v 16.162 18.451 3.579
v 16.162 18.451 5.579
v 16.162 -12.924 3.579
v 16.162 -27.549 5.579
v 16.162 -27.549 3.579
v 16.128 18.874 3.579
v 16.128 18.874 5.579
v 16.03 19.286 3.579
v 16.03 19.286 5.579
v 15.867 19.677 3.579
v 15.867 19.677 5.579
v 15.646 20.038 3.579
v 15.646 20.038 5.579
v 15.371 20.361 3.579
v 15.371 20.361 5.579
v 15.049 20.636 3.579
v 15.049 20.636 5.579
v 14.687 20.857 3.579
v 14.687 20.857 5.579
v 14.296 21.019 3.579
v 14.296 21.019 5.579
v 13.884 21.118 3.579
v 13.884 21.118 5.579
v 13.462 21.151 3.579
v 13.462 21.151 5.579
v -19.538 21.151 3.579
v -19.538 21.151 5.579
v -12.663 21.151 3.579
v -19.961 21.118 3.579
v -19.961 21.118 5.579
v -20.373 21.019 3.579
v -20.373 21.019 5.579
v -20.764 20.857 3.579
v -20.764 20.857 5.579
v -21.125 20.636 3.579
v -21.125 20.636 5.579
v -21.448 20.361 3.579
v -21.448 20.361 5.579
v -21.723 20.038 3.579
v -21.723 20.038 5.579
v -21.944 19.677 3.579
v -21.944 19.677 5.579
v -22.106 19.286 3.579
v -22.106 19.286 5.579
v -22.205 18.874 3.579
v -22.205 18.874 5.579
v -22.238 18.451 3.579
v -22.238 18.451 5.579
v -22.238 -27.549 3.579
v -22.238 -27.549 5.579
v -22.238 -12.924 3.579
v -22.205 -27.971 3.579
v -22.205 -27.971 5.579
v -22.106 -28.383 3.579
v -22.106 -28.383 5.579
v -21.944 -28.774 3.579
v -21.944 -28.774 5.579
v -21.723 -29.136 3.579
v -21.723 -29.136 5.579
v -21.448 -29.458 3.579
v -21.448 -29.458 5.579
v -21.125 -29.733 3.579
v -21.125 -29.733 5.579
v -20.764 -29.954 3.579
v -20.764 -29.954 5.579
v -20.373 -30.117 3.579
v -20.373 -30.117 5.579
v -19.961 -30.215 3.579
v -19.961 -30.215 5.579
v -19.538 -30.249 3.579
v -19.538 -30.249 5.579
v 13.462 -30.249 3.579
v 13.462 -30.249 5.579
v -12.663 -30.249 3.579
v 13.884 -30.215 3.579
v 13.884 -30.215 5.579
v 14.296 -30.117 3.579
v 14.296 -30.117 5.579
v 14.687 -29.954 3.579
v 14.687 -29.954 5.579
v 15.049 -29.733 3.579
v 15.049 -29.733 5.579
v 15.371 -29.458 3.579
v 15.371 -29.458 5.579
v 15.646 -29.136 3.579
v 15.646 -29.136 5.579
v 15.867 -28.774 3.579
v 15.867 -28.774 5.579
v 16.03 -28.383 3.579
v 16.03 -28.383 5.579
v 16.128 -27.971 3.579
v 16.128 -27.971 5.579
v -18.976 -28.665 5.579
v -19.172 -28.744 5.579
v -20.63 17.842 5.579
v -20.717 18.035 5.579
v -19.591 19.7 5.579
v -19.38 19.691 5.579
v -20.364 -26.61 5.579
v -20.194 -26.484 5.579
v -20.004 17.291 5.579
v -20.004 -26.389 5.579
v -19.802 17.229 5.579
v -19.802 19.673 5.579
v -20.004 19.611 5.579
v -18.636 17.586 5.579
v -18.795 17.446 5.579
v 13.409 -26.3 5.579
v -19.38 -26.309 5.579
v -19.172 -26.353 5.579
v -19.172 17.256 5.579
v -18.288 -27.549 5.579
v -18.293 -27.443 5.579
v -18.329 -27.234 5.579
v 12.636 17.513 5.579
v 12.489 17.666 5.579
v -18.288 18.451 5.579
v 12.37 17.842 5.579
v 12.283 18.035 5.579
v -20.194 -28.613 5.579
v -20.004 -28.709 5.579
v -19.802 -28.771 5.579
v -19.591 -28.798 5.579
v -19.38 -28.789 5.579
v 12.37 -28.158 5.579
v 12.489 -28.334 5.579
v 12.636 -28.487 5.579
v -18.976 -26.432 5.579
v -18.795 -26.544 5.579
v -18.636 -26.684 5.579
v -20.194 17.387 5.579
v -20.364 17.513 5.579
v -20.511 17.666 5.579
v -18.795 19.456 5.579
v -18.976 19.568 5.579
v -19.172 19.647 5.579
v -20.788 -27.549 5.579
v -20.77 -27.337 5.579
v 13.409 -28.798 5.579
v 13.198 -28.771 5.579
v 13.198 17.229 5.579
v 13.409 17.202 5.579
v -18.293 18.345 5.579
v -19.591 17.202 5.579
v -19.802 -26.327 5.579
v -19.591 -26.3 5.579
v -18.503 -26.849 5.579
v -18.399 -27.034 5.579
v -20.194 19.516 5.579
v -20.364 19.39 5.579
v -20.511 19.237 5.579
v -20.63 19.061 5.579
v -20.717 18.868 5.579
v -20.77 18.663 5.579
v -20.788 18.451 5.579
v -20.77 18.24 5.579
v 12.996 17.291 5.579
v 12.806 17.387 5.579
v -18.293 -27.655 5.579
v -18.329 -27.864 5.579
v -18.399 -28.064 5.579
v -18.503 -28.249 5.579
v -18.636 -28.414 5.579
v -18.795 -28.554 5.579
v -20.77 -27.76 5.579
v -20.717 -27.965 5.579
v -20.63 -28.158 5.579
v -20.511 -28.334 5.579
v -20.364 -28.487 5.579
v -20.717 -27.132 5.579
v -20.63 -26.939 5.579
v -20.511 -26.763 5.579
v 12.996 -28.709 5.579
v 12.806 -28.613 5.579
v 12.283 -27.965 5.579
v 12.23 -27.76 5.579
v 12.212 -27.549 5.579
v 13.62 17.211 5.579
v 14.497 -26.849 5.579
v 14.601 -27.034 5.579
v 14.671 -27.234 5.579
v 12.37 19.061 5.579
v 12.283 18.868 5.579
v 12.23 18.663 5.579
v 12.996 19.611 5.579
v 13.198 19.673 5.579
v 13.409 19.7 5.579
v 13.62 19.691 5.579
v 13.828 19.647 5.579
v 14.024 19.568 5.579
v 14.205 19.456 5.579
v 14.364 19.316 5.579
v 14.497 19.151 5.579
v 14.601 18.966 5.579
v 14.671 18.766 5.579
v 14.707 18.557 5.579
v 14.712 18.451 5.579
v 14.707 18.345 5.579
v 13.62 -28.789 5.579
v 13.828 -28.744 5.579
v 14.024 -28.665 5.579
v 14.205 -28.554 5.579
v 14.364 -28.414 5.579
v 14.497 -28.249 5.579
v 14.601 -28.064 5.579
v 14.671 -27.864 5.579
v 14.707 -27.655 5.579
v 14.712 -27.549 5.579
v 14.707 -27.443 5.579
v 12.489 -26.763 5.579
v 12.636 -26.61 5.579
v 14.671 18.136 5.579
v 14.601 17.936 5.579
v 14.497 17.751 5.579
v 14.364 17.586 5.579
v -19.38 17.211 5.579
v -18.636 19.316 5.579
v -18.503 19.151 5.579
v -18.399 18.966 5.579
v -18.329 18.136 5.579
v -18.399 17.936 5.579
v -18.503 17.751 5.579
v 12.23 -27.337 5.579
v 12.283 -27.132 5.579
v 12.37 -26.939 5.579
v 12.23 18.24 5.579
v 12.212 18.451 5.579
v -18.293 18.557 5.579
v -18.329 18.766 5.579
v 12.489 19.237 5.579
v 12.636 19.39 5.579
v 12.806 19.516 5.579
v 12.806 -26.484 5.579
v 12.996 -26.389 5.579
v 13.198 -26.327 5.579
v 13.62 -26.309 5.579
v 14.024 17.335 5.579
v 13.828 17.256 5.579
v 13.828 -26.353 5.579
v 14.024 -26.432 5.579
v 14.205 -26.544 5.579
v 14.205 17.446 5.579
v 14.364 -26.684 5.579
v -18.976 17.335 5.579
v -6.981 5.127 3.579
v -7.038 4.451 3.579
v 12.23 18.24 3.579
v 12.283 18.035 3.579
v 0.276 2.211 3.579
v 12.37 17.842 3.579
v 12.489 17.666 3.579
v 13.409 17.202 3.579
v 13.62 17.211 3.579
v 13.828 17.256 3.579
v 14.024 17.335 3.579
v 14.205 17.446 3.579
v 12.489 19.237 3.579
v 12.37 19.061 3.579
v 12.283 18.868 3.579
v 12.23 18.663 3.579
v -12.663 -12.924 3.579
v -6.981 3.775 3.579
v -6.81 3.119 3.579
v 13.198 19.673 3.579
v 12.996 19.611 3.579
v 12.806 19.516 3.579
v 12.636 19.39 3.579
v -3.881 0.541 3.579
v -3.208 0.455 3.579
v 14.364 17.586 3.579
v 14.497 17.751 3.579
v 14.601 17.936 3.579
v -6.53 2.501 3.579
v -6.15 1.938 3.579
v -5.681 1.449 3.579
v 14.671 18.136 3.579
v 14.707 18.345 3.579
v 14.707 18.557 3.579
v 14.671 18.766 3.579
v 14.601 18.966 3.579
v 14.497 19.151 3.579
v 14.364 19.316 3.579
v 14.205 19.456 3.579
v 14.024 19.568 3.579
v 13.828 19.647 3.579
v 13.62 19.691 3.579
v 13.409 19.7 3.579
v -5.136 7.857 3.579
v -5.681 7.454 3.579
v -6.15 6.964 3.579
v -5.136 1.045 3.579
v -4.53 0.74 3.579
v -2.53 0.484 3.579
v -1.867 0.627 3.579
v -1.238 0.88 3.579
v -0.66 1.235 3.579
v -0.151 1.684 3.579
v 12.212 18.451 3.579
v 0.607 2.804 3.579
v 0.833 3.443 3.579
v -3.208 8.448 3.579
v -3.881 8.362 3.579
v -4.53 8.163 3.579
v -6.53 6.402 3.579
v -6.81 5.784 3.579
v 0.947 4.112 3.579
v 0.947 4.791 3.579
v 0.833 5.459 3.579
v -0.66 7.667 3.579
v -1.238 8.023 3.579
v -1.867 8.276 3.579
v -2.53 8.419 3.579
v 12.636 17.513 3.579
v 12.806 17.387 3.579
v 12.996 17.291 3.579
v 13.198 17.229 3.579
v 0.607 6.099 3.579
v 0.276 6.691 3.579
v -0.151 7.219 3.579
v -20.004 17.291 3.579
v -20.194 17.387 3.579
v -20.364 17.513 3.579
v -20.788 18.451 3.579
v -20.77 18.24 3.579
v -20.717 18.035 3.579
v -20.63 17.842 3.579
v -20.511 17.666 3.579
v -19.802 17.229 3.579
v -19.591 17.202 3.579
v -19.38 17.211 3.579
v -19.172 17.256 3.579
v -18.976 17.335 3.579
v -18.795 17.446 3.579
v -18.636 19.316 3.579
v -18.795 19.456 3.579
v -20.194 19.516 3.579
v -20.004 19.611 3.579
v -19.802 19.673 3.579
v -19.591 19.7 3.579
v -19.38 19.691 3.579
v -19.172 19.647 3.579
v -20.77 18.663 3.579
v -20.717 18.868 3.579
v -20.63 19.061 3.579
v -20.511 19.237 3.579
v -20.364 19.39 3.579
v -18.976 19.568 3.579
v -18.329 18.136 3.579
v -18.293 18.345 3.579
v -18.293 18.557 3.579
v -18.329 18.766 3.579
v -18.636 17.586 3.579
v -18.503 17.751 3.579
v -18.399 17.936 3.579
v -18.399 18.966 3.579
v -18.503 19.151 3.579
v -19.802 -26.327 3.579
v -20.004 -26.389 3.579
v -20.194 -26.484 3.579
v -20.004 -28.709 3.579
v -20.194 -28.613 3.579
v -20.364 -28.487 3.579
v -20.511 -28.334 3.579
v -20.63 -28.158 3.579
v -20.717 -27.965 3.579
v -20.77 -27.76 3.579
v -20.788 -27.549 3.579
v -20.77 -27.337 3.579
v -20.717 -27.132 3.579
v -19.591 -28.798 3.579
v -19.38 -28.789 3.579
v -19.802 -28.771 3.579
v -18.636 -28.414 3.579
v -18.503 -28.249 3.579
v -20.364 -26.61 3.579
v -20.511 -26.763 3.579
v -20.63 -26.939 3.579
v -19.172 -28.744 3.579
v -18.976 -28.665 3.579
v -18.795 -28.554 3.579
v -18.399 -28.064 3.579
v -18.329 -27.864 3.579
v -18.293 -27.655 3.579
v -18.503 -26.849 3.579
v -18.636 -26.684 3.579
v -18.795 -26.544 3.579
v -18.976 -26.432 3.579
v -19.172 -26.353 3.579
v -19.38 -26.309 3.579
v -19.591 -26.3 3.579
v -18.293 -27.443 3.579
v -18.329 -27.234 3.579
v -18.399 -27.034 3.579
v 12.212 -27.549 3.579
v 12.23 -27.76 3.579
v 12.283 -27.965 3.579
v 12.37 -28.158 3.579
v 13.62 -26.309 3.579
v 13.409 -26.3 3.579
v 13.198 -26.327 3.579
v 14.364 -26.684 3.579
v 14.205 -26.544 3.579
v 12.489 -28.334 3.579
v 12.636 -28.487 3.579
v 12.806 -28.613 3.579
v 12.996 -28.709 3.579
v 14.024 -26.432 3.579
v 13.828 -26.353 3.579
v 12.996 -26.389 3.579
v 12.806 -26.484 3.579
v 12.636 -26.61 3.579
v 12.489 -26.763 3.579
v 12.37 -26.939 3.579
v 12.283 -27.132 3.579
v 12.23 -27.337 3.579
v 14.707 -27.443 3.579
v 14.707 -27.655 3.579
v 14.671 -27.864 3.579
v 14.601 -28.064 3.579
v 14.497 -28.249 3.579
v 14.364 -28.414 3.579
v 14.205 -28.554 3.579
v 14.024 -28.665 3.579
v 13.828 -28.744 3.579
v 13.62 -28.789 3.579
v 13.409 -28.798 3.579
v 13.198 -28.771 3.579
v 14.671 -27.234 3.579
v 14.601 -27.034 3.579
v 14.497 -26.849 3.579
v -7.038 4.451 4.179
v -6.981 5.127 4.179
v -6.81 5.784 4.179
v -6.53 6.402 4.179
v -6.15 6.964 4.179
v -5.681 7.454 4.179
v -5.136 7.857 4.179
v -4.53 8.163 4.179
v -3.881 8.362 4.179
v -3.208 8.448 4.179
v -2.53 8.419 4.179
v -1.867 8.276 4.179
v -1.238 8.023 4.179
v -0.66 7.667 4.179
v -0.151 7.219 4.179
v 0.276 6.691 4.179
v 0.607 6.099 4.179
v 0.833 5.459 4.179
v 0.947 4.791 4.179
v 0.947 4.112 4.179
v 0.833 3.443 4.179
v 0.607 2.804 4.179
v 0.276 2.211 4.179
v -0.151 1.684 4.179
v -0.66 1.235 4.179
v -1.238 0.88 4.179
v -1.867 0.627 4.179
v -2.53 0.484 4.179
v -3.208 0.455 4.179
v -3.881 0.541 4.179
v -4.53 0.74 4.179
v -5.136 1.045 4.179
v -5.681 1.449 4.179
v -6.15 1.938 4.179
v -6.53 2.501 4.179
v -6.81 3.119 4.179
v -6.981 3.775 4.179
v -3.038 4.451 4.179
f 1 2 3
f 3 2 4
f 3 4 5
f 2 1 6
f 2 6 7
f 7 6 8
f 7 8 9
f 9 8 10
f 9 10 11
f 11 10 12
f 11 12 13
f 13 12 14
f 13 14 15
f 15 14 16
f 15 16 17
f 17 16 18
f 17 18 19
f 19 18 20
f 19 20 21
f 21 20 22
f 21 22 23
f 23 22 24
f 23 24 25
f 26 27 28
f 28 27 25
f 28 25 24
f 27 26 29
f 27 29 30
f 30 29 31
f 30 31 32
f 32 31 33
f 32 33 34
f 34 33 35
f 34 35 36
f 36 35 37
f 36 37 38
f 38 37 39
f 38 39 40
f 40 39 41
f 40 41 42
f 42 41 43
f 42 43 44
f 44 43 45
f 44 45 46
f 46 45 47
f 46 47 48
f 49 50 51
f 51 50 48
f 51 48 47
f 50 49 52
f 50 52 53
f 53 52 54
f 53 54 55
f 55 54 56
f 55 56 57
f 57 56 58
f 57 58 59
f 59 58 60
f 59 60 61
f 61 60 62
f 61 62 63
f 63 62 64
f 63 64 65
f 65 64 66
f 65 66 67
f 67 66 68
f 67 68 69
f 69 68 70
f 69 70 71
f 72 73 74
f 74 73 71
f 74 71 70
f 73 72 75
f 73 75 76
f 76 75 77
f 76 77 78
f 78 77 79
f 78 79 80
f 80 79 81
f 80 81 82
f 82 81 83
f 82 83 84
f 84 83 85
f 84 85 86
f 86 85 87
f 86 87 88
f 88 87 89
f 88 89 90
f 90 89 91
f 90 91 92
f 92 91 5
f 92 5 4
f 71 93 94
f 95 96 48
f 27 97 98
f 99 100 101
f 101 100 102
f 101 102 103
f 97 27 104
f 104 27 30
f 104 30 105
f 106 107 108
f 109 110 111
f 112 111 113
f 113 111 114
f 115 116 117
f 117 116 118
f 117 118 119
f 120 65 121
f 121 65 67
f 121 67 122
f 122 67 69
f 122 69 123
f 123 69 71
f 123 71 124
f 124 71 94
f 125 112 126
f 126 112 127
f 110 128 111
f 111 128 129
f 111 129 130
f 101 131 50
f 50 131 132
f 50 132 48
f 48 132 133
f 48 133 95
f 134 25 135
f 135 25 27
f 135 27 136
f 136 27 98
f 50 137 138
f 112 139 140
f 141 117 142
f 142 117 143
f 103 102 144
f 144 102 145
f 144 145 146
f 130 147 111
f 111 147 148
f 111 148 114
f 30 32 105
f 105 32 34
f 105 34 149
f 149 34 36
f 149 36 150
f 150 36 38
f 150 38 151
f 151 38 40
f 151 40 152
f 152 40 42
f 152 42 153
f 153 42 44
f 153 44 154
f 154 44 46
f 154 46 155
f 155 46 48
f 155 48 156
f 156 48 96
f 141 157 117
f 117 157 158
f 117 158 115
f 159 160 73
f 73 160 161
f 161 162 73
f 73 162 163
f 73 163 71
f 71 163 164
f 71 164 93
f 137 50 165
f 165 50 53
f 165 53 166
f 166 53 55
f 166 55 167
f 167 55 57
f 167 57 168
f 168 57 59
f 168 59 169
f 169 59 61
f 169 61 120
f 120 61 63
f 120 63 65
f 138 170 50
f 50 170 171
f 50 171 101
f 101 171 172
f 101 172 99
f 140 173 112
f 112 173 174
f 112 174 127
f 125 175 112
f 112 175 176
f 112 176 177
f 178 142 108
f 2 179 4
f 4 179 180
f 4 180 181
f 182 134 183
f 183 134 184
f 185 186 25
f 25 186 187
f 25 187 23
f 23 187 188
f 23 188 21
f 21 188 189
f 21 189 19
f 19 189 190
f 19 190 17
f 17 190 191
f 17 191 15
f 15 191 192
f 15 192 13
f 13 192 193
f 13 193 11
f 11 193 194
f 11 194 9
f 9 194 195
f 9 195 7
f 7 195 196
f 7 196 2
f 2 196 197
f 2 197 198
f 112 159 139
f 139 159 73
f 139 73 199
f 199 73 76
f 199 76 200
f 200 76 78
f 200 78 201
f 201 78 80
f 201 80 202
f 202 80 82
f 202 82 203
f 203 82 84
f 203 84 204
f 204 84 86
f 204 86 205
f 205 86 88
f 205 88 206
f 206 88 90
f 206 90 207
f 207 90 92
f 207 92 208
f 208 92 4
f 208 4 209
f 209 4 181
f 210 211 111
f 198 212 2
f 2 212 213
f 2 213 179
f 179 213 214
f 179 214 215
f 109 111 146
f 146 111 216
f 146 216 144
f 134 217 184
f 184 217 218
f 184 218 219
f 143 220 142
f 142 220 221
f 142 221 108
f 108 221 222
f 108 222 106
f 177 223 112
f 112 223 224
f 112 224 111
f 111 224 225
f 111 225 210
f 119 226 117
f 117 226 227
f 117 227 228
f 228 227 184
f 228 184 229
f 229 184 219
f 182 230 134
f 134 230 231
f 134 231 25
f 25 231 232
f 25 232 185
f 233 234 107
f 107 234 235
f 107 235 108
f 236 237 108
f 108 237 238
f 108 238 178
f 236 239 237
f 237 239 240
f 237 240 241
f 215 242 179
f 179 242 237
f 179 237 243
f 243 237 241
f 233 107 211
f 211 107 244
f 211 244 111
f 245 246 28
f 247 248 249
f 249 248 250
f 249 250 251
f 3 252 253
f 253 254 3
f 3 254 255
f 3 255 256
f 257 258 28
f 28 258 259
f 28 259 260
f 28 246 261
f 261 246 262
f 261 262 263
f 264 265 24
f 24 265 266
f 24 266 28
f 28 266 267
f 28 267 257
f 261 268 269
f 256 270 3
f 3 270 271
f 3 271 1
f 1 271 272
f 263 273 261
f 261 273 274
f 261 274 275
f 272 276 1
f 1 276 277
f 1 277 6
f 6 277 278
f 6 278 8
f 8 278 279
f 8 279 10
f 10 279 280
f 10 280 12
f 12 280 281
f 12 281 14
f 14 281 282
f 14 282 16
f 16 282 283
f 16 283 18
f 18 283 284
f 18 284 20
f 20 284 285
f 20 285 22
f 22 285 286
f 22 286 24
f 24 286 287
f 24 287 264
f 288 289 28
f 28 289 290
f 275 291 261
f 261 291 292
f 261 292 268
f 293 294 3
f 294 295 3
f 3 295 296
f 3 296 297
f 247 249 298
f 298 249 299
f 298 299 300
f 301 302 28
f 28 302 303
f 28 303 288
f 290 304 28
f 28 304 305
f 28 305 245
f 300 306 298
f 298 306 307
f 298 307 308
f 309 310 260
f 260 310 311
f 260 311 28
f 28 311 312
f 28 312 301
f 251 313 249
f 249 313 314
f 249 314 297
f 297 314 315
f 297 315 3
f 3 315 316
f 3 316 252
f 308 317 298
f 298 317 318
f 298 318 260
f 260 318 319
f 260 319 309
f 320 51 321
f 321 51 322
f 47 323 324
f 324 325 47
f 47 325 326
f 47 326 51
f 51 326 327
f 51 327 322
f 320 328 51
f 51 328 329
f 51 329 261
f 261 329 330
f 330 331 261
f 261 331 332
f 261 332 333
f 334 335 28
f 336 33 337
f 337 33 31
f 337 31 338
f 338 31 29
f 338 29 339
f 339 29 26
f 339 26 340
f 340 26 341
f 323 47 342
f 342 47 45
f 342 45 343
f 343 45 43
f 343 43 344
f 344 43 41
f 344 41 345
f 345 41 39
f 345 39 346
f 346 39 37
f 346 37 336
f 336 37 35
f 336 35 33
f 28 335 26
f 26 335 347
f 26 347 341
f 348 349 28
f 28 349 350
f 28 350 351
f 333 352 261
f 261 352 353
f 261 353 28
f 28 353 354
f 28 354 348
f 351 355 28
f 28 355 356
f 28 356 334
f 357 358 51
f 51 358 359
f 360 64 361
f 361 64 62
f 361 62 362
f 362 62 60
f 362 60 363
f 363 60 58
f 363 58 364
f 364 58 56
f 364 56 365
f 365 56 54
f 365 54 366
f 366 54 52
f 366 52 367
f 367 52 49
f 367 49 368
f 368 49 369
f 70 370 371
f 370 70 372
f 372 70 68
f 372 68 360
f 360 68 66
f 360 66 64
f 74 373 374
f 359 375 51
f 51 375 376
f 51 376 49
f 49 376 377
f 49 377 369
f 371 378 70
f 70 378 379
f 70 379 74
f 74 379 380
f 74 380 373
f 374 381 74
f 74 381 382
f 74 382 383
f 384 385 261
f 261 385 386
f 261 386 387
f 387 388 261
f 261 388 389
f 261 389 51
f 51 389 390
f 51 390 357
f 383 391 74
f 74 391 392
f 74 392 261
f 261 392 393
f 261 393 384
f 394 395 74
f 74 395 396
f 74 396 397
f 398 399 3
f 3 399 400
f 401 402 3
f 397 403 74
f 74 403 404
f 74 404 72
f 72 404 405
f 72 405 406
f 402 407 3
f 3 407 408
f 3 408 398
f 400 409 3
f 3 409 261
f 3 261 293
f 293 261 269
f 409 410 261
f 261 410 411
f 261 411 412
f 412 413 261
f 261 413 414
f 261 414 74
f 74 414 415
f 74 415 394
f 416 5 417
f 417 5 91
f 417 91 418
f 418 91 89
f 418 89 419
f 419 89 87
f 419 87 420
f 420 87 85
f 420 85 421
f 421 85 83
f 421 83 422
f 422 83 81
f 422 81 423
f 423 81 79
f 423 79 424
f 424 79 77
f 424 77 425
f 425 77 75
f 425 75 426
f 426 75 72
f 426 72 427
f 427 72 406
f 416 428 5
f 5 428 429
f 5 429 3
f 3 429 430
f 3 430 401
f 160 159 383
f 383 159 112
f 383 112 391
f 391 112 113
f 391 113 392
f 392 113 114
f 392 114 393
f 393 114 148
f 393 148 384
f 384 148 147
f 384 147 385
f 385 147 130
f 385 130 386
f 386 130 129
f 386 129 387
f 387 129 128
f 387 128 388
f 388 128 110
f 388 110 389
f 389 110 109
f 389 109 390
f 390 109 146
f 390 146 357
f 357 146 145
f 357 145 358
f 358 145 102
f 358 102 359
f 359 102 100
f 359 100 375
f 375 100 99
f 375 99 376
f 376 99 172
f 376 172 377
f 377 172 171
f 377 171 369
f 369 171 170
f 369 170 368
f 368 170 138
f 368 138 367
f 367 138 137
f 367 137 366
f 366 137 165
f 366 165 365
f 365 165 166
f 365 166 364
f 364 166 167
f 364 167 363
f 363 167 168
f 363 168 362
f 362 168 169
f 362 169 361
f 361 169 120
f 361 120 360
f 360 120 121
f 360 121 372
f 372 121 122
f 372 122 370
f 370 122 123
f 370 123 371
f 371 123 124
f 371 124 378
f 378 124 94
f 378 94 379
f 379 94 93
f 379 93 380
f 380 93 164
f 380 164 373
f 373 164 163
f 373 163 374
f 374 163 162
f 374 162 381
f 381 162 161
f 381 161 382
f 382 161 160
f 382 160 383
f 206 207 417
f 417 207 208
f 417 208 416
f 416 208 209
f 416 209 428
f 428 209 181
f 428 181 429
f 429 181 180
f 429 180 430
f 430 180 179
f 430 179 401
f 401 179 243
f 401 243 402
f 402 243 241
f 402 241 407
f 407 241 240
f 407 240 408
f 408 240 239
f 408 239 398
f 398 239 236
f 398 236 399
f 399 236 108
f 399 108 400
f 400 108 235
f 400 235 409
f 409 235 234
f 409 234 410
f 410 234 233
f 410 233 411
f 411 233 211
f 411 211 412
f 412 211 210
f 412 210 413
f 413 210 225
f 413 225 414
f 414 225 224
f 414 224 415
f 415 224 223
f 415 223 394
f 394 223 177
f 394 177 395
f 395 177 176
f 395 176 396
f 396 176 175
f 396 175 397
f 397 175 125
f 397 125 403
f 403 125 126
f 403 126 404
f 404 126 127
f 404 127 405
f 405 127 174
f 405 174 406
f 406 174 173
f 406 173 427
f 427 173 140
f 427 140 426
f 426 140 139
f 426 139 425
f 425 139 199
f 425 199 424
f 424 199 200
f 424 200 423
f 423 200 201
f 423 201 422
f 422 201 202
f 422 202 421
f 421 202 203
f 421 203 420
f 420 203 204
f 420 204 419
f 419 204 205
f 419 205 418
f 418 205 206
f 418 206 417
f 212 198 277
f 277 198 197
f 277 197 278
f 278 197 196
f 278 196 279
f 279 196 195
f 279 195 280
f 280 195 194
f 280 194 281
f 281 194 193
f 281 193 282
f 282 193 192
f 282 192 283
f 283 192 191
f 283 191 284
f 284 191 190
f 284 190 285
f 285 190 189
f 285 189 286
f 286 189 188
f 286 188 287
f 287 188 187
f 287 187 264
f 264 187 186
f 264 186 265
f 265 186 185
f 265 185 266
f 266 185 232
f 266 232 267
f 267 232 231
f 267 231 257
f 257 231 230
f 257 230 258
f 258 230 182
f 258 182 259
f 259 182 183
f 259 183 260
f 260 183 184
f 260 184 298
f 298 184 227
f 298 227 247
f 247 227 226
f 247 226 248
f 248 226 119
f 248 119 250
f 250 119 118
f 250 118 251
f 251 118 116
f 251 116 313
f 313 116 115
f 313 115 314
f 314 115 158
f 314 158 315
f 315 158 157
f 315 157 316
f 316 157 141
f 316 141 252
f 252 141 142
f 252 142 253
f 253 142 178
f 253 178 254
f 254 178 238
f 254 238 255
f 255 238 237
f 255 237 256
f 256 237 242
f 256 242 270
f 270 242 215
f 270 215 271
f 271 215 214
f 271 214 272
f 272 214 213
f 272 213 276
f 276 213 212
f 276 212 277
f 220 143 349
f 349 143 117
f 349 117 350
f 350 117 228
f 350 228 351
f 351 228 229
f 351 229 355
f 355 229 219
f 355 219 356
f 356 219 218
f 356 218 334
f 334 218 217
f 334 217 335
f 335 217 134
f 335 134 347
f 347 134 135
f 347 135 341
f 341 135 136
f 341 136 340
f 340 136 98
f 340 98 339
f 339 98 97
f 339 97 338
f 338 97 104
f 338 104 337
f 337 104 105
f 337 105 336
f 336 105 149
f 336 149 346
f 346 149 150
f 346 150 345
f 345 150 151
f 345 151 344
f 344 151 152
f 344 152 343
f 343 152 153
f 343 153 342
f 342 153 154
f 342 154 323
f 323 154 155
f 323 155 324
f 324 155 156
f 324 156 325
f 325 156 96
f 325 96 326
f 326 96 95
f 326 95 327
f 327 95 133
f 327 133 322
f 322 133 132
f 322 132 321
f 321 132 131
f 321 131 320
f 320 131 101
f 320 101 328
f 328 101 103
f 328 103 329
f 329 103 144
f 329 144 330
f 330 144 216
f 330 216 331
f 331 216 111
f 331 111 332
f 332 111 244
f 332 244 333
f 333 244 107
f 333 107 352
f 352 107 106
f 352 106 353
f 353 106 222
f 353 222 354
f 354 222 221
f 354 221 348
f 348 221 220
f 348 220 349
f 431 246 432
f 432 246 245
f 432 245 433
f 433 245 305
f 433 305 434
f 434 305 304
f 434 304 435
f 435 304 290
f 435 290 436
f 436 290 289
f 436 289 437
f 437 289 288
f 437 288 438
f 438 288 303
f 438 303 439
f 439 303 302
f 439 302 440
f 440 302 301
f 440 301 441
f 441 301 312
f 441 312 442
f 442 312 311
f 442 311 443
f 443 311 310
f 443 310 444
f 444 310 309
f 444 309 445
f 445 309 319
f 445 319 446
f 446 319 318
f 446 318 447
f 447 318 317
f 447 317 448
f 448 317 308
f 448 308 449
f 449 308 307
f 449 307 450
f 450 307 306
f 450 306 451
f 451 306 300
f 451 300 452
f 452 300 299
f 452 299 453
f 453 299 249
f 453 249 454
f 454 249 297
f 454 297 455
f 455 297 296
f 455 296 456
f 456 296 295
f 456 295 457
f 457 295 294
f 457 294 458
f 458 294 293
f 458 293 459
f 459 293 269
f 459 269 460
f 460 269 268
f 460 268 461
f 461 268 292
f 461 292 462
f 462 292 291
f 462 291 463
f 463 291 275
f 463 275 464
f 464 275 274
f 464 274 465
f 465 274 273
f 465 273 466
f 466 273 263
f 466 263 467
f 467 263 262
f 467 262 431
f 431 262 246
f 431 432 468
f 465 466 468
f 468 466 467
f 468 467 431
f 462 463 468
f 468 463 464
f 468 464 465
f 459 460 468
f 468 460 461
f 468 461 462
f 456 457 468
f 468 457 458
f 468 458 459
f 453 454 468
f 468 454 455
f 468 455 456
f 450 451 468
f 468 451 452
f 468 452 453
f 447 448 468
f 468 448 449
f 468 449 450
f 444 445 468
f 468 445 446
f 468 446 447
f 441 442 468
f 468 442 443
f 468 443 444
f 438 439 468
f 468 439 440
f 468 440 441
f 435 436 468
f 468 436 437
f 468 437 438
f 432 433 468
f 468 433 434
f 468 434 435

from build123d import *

# Parameters (mm, degrees)
BOSS_EXTRUDE1_DEPTH   = 2
M3_TAPPED_HOLE1_D     = 2.5
M3_TAPPED_HOLE1_DEPTH = 7.5
M3_TAPPED_HOLE1_TIP   = 0.751075774
SKETCH5_R             = 4
CUT_EXTRUDE4_DEPTH    = 0.6


with BuildPart() as part:
    # Sketch1 → Boss-Extrude1 (new body)
    with BuildSketch(Plane.XY.offset(3.579115056)):
        with BuildLine():
            Line((13.461651474, 21.151347876), (-19.538348526, 21.151347876))
            ThreePointArc((-19.538348526, 21.151347876), (-21.447536835, 20.360536186), (-22.238348526, 18.451347876))
            Line((-22.238348526, 18.451347876), (-22.238348526, -27.548652124))
            ThreePointArc((-22.238348526, -27.548652124), (-21.447536835, -29.457840433), (-19.538348526, -30.248652124))
            Line((-19.538348526, -30.248652124), (13.461651474, -30.248652124))
            ThreePointArc((13.461651474, -30.248652124), (15.370839783, -29.457840433), (16.161651474, -27.548652124))
            Line((16.161651474, -27.548652124), (16.161651474, 18.451347876))
            ThreePointArc((16.161651474, 18.451347876), (15.370839783, 20.360536186), (13.461651474, 21.151347876))
        make_face()
    extrude(amount=BOSS_EXTRUDE1_DEPTH)

    # M3 Tapped Hole1
    with Locations(Plane(origin=(0, 0, 3.579115056), x_dir=(-1, 0, 0), z_dir=(0, 0, -1))):
        with Locations((19.538348526, 18.451347876), (-13.461651474, 18.451347876), (-13.461651474, -27.548652124), (19.538348526, -27.548652124)):
            Hole(M3_TAPPED_HOLE1_D / 2, depth=M3_TAPPED_HOLE1_DEPTH)
            with Locations((0, 0, -(M3_TAPPED_HOLE1_DEPTH + M3_TAPPED_HOLE1_TIP / 2))):  # 118° drill point
                Cone(0, M3_TAPPED_HOLE1_D / 2, M3_TAPPED_HOLE1_TIP, mode=Mode.SUBTRACT)

    # Sketch5 → Cut-Extrude4 (cut)
    with BuildSketch(Plane(origin=(0, 0, 3.579115056), x_dir=(-1, 0, 0), z_dir=(0, 0, -1))):
        with Locations((3.038348526, 4.451347876)):
            Circle(SKETCH5_R)
    extrude(amount=-CUT_EXTRUDE4_DEPTH, mode=Mode.SUBTRACT)


solid = part.part
